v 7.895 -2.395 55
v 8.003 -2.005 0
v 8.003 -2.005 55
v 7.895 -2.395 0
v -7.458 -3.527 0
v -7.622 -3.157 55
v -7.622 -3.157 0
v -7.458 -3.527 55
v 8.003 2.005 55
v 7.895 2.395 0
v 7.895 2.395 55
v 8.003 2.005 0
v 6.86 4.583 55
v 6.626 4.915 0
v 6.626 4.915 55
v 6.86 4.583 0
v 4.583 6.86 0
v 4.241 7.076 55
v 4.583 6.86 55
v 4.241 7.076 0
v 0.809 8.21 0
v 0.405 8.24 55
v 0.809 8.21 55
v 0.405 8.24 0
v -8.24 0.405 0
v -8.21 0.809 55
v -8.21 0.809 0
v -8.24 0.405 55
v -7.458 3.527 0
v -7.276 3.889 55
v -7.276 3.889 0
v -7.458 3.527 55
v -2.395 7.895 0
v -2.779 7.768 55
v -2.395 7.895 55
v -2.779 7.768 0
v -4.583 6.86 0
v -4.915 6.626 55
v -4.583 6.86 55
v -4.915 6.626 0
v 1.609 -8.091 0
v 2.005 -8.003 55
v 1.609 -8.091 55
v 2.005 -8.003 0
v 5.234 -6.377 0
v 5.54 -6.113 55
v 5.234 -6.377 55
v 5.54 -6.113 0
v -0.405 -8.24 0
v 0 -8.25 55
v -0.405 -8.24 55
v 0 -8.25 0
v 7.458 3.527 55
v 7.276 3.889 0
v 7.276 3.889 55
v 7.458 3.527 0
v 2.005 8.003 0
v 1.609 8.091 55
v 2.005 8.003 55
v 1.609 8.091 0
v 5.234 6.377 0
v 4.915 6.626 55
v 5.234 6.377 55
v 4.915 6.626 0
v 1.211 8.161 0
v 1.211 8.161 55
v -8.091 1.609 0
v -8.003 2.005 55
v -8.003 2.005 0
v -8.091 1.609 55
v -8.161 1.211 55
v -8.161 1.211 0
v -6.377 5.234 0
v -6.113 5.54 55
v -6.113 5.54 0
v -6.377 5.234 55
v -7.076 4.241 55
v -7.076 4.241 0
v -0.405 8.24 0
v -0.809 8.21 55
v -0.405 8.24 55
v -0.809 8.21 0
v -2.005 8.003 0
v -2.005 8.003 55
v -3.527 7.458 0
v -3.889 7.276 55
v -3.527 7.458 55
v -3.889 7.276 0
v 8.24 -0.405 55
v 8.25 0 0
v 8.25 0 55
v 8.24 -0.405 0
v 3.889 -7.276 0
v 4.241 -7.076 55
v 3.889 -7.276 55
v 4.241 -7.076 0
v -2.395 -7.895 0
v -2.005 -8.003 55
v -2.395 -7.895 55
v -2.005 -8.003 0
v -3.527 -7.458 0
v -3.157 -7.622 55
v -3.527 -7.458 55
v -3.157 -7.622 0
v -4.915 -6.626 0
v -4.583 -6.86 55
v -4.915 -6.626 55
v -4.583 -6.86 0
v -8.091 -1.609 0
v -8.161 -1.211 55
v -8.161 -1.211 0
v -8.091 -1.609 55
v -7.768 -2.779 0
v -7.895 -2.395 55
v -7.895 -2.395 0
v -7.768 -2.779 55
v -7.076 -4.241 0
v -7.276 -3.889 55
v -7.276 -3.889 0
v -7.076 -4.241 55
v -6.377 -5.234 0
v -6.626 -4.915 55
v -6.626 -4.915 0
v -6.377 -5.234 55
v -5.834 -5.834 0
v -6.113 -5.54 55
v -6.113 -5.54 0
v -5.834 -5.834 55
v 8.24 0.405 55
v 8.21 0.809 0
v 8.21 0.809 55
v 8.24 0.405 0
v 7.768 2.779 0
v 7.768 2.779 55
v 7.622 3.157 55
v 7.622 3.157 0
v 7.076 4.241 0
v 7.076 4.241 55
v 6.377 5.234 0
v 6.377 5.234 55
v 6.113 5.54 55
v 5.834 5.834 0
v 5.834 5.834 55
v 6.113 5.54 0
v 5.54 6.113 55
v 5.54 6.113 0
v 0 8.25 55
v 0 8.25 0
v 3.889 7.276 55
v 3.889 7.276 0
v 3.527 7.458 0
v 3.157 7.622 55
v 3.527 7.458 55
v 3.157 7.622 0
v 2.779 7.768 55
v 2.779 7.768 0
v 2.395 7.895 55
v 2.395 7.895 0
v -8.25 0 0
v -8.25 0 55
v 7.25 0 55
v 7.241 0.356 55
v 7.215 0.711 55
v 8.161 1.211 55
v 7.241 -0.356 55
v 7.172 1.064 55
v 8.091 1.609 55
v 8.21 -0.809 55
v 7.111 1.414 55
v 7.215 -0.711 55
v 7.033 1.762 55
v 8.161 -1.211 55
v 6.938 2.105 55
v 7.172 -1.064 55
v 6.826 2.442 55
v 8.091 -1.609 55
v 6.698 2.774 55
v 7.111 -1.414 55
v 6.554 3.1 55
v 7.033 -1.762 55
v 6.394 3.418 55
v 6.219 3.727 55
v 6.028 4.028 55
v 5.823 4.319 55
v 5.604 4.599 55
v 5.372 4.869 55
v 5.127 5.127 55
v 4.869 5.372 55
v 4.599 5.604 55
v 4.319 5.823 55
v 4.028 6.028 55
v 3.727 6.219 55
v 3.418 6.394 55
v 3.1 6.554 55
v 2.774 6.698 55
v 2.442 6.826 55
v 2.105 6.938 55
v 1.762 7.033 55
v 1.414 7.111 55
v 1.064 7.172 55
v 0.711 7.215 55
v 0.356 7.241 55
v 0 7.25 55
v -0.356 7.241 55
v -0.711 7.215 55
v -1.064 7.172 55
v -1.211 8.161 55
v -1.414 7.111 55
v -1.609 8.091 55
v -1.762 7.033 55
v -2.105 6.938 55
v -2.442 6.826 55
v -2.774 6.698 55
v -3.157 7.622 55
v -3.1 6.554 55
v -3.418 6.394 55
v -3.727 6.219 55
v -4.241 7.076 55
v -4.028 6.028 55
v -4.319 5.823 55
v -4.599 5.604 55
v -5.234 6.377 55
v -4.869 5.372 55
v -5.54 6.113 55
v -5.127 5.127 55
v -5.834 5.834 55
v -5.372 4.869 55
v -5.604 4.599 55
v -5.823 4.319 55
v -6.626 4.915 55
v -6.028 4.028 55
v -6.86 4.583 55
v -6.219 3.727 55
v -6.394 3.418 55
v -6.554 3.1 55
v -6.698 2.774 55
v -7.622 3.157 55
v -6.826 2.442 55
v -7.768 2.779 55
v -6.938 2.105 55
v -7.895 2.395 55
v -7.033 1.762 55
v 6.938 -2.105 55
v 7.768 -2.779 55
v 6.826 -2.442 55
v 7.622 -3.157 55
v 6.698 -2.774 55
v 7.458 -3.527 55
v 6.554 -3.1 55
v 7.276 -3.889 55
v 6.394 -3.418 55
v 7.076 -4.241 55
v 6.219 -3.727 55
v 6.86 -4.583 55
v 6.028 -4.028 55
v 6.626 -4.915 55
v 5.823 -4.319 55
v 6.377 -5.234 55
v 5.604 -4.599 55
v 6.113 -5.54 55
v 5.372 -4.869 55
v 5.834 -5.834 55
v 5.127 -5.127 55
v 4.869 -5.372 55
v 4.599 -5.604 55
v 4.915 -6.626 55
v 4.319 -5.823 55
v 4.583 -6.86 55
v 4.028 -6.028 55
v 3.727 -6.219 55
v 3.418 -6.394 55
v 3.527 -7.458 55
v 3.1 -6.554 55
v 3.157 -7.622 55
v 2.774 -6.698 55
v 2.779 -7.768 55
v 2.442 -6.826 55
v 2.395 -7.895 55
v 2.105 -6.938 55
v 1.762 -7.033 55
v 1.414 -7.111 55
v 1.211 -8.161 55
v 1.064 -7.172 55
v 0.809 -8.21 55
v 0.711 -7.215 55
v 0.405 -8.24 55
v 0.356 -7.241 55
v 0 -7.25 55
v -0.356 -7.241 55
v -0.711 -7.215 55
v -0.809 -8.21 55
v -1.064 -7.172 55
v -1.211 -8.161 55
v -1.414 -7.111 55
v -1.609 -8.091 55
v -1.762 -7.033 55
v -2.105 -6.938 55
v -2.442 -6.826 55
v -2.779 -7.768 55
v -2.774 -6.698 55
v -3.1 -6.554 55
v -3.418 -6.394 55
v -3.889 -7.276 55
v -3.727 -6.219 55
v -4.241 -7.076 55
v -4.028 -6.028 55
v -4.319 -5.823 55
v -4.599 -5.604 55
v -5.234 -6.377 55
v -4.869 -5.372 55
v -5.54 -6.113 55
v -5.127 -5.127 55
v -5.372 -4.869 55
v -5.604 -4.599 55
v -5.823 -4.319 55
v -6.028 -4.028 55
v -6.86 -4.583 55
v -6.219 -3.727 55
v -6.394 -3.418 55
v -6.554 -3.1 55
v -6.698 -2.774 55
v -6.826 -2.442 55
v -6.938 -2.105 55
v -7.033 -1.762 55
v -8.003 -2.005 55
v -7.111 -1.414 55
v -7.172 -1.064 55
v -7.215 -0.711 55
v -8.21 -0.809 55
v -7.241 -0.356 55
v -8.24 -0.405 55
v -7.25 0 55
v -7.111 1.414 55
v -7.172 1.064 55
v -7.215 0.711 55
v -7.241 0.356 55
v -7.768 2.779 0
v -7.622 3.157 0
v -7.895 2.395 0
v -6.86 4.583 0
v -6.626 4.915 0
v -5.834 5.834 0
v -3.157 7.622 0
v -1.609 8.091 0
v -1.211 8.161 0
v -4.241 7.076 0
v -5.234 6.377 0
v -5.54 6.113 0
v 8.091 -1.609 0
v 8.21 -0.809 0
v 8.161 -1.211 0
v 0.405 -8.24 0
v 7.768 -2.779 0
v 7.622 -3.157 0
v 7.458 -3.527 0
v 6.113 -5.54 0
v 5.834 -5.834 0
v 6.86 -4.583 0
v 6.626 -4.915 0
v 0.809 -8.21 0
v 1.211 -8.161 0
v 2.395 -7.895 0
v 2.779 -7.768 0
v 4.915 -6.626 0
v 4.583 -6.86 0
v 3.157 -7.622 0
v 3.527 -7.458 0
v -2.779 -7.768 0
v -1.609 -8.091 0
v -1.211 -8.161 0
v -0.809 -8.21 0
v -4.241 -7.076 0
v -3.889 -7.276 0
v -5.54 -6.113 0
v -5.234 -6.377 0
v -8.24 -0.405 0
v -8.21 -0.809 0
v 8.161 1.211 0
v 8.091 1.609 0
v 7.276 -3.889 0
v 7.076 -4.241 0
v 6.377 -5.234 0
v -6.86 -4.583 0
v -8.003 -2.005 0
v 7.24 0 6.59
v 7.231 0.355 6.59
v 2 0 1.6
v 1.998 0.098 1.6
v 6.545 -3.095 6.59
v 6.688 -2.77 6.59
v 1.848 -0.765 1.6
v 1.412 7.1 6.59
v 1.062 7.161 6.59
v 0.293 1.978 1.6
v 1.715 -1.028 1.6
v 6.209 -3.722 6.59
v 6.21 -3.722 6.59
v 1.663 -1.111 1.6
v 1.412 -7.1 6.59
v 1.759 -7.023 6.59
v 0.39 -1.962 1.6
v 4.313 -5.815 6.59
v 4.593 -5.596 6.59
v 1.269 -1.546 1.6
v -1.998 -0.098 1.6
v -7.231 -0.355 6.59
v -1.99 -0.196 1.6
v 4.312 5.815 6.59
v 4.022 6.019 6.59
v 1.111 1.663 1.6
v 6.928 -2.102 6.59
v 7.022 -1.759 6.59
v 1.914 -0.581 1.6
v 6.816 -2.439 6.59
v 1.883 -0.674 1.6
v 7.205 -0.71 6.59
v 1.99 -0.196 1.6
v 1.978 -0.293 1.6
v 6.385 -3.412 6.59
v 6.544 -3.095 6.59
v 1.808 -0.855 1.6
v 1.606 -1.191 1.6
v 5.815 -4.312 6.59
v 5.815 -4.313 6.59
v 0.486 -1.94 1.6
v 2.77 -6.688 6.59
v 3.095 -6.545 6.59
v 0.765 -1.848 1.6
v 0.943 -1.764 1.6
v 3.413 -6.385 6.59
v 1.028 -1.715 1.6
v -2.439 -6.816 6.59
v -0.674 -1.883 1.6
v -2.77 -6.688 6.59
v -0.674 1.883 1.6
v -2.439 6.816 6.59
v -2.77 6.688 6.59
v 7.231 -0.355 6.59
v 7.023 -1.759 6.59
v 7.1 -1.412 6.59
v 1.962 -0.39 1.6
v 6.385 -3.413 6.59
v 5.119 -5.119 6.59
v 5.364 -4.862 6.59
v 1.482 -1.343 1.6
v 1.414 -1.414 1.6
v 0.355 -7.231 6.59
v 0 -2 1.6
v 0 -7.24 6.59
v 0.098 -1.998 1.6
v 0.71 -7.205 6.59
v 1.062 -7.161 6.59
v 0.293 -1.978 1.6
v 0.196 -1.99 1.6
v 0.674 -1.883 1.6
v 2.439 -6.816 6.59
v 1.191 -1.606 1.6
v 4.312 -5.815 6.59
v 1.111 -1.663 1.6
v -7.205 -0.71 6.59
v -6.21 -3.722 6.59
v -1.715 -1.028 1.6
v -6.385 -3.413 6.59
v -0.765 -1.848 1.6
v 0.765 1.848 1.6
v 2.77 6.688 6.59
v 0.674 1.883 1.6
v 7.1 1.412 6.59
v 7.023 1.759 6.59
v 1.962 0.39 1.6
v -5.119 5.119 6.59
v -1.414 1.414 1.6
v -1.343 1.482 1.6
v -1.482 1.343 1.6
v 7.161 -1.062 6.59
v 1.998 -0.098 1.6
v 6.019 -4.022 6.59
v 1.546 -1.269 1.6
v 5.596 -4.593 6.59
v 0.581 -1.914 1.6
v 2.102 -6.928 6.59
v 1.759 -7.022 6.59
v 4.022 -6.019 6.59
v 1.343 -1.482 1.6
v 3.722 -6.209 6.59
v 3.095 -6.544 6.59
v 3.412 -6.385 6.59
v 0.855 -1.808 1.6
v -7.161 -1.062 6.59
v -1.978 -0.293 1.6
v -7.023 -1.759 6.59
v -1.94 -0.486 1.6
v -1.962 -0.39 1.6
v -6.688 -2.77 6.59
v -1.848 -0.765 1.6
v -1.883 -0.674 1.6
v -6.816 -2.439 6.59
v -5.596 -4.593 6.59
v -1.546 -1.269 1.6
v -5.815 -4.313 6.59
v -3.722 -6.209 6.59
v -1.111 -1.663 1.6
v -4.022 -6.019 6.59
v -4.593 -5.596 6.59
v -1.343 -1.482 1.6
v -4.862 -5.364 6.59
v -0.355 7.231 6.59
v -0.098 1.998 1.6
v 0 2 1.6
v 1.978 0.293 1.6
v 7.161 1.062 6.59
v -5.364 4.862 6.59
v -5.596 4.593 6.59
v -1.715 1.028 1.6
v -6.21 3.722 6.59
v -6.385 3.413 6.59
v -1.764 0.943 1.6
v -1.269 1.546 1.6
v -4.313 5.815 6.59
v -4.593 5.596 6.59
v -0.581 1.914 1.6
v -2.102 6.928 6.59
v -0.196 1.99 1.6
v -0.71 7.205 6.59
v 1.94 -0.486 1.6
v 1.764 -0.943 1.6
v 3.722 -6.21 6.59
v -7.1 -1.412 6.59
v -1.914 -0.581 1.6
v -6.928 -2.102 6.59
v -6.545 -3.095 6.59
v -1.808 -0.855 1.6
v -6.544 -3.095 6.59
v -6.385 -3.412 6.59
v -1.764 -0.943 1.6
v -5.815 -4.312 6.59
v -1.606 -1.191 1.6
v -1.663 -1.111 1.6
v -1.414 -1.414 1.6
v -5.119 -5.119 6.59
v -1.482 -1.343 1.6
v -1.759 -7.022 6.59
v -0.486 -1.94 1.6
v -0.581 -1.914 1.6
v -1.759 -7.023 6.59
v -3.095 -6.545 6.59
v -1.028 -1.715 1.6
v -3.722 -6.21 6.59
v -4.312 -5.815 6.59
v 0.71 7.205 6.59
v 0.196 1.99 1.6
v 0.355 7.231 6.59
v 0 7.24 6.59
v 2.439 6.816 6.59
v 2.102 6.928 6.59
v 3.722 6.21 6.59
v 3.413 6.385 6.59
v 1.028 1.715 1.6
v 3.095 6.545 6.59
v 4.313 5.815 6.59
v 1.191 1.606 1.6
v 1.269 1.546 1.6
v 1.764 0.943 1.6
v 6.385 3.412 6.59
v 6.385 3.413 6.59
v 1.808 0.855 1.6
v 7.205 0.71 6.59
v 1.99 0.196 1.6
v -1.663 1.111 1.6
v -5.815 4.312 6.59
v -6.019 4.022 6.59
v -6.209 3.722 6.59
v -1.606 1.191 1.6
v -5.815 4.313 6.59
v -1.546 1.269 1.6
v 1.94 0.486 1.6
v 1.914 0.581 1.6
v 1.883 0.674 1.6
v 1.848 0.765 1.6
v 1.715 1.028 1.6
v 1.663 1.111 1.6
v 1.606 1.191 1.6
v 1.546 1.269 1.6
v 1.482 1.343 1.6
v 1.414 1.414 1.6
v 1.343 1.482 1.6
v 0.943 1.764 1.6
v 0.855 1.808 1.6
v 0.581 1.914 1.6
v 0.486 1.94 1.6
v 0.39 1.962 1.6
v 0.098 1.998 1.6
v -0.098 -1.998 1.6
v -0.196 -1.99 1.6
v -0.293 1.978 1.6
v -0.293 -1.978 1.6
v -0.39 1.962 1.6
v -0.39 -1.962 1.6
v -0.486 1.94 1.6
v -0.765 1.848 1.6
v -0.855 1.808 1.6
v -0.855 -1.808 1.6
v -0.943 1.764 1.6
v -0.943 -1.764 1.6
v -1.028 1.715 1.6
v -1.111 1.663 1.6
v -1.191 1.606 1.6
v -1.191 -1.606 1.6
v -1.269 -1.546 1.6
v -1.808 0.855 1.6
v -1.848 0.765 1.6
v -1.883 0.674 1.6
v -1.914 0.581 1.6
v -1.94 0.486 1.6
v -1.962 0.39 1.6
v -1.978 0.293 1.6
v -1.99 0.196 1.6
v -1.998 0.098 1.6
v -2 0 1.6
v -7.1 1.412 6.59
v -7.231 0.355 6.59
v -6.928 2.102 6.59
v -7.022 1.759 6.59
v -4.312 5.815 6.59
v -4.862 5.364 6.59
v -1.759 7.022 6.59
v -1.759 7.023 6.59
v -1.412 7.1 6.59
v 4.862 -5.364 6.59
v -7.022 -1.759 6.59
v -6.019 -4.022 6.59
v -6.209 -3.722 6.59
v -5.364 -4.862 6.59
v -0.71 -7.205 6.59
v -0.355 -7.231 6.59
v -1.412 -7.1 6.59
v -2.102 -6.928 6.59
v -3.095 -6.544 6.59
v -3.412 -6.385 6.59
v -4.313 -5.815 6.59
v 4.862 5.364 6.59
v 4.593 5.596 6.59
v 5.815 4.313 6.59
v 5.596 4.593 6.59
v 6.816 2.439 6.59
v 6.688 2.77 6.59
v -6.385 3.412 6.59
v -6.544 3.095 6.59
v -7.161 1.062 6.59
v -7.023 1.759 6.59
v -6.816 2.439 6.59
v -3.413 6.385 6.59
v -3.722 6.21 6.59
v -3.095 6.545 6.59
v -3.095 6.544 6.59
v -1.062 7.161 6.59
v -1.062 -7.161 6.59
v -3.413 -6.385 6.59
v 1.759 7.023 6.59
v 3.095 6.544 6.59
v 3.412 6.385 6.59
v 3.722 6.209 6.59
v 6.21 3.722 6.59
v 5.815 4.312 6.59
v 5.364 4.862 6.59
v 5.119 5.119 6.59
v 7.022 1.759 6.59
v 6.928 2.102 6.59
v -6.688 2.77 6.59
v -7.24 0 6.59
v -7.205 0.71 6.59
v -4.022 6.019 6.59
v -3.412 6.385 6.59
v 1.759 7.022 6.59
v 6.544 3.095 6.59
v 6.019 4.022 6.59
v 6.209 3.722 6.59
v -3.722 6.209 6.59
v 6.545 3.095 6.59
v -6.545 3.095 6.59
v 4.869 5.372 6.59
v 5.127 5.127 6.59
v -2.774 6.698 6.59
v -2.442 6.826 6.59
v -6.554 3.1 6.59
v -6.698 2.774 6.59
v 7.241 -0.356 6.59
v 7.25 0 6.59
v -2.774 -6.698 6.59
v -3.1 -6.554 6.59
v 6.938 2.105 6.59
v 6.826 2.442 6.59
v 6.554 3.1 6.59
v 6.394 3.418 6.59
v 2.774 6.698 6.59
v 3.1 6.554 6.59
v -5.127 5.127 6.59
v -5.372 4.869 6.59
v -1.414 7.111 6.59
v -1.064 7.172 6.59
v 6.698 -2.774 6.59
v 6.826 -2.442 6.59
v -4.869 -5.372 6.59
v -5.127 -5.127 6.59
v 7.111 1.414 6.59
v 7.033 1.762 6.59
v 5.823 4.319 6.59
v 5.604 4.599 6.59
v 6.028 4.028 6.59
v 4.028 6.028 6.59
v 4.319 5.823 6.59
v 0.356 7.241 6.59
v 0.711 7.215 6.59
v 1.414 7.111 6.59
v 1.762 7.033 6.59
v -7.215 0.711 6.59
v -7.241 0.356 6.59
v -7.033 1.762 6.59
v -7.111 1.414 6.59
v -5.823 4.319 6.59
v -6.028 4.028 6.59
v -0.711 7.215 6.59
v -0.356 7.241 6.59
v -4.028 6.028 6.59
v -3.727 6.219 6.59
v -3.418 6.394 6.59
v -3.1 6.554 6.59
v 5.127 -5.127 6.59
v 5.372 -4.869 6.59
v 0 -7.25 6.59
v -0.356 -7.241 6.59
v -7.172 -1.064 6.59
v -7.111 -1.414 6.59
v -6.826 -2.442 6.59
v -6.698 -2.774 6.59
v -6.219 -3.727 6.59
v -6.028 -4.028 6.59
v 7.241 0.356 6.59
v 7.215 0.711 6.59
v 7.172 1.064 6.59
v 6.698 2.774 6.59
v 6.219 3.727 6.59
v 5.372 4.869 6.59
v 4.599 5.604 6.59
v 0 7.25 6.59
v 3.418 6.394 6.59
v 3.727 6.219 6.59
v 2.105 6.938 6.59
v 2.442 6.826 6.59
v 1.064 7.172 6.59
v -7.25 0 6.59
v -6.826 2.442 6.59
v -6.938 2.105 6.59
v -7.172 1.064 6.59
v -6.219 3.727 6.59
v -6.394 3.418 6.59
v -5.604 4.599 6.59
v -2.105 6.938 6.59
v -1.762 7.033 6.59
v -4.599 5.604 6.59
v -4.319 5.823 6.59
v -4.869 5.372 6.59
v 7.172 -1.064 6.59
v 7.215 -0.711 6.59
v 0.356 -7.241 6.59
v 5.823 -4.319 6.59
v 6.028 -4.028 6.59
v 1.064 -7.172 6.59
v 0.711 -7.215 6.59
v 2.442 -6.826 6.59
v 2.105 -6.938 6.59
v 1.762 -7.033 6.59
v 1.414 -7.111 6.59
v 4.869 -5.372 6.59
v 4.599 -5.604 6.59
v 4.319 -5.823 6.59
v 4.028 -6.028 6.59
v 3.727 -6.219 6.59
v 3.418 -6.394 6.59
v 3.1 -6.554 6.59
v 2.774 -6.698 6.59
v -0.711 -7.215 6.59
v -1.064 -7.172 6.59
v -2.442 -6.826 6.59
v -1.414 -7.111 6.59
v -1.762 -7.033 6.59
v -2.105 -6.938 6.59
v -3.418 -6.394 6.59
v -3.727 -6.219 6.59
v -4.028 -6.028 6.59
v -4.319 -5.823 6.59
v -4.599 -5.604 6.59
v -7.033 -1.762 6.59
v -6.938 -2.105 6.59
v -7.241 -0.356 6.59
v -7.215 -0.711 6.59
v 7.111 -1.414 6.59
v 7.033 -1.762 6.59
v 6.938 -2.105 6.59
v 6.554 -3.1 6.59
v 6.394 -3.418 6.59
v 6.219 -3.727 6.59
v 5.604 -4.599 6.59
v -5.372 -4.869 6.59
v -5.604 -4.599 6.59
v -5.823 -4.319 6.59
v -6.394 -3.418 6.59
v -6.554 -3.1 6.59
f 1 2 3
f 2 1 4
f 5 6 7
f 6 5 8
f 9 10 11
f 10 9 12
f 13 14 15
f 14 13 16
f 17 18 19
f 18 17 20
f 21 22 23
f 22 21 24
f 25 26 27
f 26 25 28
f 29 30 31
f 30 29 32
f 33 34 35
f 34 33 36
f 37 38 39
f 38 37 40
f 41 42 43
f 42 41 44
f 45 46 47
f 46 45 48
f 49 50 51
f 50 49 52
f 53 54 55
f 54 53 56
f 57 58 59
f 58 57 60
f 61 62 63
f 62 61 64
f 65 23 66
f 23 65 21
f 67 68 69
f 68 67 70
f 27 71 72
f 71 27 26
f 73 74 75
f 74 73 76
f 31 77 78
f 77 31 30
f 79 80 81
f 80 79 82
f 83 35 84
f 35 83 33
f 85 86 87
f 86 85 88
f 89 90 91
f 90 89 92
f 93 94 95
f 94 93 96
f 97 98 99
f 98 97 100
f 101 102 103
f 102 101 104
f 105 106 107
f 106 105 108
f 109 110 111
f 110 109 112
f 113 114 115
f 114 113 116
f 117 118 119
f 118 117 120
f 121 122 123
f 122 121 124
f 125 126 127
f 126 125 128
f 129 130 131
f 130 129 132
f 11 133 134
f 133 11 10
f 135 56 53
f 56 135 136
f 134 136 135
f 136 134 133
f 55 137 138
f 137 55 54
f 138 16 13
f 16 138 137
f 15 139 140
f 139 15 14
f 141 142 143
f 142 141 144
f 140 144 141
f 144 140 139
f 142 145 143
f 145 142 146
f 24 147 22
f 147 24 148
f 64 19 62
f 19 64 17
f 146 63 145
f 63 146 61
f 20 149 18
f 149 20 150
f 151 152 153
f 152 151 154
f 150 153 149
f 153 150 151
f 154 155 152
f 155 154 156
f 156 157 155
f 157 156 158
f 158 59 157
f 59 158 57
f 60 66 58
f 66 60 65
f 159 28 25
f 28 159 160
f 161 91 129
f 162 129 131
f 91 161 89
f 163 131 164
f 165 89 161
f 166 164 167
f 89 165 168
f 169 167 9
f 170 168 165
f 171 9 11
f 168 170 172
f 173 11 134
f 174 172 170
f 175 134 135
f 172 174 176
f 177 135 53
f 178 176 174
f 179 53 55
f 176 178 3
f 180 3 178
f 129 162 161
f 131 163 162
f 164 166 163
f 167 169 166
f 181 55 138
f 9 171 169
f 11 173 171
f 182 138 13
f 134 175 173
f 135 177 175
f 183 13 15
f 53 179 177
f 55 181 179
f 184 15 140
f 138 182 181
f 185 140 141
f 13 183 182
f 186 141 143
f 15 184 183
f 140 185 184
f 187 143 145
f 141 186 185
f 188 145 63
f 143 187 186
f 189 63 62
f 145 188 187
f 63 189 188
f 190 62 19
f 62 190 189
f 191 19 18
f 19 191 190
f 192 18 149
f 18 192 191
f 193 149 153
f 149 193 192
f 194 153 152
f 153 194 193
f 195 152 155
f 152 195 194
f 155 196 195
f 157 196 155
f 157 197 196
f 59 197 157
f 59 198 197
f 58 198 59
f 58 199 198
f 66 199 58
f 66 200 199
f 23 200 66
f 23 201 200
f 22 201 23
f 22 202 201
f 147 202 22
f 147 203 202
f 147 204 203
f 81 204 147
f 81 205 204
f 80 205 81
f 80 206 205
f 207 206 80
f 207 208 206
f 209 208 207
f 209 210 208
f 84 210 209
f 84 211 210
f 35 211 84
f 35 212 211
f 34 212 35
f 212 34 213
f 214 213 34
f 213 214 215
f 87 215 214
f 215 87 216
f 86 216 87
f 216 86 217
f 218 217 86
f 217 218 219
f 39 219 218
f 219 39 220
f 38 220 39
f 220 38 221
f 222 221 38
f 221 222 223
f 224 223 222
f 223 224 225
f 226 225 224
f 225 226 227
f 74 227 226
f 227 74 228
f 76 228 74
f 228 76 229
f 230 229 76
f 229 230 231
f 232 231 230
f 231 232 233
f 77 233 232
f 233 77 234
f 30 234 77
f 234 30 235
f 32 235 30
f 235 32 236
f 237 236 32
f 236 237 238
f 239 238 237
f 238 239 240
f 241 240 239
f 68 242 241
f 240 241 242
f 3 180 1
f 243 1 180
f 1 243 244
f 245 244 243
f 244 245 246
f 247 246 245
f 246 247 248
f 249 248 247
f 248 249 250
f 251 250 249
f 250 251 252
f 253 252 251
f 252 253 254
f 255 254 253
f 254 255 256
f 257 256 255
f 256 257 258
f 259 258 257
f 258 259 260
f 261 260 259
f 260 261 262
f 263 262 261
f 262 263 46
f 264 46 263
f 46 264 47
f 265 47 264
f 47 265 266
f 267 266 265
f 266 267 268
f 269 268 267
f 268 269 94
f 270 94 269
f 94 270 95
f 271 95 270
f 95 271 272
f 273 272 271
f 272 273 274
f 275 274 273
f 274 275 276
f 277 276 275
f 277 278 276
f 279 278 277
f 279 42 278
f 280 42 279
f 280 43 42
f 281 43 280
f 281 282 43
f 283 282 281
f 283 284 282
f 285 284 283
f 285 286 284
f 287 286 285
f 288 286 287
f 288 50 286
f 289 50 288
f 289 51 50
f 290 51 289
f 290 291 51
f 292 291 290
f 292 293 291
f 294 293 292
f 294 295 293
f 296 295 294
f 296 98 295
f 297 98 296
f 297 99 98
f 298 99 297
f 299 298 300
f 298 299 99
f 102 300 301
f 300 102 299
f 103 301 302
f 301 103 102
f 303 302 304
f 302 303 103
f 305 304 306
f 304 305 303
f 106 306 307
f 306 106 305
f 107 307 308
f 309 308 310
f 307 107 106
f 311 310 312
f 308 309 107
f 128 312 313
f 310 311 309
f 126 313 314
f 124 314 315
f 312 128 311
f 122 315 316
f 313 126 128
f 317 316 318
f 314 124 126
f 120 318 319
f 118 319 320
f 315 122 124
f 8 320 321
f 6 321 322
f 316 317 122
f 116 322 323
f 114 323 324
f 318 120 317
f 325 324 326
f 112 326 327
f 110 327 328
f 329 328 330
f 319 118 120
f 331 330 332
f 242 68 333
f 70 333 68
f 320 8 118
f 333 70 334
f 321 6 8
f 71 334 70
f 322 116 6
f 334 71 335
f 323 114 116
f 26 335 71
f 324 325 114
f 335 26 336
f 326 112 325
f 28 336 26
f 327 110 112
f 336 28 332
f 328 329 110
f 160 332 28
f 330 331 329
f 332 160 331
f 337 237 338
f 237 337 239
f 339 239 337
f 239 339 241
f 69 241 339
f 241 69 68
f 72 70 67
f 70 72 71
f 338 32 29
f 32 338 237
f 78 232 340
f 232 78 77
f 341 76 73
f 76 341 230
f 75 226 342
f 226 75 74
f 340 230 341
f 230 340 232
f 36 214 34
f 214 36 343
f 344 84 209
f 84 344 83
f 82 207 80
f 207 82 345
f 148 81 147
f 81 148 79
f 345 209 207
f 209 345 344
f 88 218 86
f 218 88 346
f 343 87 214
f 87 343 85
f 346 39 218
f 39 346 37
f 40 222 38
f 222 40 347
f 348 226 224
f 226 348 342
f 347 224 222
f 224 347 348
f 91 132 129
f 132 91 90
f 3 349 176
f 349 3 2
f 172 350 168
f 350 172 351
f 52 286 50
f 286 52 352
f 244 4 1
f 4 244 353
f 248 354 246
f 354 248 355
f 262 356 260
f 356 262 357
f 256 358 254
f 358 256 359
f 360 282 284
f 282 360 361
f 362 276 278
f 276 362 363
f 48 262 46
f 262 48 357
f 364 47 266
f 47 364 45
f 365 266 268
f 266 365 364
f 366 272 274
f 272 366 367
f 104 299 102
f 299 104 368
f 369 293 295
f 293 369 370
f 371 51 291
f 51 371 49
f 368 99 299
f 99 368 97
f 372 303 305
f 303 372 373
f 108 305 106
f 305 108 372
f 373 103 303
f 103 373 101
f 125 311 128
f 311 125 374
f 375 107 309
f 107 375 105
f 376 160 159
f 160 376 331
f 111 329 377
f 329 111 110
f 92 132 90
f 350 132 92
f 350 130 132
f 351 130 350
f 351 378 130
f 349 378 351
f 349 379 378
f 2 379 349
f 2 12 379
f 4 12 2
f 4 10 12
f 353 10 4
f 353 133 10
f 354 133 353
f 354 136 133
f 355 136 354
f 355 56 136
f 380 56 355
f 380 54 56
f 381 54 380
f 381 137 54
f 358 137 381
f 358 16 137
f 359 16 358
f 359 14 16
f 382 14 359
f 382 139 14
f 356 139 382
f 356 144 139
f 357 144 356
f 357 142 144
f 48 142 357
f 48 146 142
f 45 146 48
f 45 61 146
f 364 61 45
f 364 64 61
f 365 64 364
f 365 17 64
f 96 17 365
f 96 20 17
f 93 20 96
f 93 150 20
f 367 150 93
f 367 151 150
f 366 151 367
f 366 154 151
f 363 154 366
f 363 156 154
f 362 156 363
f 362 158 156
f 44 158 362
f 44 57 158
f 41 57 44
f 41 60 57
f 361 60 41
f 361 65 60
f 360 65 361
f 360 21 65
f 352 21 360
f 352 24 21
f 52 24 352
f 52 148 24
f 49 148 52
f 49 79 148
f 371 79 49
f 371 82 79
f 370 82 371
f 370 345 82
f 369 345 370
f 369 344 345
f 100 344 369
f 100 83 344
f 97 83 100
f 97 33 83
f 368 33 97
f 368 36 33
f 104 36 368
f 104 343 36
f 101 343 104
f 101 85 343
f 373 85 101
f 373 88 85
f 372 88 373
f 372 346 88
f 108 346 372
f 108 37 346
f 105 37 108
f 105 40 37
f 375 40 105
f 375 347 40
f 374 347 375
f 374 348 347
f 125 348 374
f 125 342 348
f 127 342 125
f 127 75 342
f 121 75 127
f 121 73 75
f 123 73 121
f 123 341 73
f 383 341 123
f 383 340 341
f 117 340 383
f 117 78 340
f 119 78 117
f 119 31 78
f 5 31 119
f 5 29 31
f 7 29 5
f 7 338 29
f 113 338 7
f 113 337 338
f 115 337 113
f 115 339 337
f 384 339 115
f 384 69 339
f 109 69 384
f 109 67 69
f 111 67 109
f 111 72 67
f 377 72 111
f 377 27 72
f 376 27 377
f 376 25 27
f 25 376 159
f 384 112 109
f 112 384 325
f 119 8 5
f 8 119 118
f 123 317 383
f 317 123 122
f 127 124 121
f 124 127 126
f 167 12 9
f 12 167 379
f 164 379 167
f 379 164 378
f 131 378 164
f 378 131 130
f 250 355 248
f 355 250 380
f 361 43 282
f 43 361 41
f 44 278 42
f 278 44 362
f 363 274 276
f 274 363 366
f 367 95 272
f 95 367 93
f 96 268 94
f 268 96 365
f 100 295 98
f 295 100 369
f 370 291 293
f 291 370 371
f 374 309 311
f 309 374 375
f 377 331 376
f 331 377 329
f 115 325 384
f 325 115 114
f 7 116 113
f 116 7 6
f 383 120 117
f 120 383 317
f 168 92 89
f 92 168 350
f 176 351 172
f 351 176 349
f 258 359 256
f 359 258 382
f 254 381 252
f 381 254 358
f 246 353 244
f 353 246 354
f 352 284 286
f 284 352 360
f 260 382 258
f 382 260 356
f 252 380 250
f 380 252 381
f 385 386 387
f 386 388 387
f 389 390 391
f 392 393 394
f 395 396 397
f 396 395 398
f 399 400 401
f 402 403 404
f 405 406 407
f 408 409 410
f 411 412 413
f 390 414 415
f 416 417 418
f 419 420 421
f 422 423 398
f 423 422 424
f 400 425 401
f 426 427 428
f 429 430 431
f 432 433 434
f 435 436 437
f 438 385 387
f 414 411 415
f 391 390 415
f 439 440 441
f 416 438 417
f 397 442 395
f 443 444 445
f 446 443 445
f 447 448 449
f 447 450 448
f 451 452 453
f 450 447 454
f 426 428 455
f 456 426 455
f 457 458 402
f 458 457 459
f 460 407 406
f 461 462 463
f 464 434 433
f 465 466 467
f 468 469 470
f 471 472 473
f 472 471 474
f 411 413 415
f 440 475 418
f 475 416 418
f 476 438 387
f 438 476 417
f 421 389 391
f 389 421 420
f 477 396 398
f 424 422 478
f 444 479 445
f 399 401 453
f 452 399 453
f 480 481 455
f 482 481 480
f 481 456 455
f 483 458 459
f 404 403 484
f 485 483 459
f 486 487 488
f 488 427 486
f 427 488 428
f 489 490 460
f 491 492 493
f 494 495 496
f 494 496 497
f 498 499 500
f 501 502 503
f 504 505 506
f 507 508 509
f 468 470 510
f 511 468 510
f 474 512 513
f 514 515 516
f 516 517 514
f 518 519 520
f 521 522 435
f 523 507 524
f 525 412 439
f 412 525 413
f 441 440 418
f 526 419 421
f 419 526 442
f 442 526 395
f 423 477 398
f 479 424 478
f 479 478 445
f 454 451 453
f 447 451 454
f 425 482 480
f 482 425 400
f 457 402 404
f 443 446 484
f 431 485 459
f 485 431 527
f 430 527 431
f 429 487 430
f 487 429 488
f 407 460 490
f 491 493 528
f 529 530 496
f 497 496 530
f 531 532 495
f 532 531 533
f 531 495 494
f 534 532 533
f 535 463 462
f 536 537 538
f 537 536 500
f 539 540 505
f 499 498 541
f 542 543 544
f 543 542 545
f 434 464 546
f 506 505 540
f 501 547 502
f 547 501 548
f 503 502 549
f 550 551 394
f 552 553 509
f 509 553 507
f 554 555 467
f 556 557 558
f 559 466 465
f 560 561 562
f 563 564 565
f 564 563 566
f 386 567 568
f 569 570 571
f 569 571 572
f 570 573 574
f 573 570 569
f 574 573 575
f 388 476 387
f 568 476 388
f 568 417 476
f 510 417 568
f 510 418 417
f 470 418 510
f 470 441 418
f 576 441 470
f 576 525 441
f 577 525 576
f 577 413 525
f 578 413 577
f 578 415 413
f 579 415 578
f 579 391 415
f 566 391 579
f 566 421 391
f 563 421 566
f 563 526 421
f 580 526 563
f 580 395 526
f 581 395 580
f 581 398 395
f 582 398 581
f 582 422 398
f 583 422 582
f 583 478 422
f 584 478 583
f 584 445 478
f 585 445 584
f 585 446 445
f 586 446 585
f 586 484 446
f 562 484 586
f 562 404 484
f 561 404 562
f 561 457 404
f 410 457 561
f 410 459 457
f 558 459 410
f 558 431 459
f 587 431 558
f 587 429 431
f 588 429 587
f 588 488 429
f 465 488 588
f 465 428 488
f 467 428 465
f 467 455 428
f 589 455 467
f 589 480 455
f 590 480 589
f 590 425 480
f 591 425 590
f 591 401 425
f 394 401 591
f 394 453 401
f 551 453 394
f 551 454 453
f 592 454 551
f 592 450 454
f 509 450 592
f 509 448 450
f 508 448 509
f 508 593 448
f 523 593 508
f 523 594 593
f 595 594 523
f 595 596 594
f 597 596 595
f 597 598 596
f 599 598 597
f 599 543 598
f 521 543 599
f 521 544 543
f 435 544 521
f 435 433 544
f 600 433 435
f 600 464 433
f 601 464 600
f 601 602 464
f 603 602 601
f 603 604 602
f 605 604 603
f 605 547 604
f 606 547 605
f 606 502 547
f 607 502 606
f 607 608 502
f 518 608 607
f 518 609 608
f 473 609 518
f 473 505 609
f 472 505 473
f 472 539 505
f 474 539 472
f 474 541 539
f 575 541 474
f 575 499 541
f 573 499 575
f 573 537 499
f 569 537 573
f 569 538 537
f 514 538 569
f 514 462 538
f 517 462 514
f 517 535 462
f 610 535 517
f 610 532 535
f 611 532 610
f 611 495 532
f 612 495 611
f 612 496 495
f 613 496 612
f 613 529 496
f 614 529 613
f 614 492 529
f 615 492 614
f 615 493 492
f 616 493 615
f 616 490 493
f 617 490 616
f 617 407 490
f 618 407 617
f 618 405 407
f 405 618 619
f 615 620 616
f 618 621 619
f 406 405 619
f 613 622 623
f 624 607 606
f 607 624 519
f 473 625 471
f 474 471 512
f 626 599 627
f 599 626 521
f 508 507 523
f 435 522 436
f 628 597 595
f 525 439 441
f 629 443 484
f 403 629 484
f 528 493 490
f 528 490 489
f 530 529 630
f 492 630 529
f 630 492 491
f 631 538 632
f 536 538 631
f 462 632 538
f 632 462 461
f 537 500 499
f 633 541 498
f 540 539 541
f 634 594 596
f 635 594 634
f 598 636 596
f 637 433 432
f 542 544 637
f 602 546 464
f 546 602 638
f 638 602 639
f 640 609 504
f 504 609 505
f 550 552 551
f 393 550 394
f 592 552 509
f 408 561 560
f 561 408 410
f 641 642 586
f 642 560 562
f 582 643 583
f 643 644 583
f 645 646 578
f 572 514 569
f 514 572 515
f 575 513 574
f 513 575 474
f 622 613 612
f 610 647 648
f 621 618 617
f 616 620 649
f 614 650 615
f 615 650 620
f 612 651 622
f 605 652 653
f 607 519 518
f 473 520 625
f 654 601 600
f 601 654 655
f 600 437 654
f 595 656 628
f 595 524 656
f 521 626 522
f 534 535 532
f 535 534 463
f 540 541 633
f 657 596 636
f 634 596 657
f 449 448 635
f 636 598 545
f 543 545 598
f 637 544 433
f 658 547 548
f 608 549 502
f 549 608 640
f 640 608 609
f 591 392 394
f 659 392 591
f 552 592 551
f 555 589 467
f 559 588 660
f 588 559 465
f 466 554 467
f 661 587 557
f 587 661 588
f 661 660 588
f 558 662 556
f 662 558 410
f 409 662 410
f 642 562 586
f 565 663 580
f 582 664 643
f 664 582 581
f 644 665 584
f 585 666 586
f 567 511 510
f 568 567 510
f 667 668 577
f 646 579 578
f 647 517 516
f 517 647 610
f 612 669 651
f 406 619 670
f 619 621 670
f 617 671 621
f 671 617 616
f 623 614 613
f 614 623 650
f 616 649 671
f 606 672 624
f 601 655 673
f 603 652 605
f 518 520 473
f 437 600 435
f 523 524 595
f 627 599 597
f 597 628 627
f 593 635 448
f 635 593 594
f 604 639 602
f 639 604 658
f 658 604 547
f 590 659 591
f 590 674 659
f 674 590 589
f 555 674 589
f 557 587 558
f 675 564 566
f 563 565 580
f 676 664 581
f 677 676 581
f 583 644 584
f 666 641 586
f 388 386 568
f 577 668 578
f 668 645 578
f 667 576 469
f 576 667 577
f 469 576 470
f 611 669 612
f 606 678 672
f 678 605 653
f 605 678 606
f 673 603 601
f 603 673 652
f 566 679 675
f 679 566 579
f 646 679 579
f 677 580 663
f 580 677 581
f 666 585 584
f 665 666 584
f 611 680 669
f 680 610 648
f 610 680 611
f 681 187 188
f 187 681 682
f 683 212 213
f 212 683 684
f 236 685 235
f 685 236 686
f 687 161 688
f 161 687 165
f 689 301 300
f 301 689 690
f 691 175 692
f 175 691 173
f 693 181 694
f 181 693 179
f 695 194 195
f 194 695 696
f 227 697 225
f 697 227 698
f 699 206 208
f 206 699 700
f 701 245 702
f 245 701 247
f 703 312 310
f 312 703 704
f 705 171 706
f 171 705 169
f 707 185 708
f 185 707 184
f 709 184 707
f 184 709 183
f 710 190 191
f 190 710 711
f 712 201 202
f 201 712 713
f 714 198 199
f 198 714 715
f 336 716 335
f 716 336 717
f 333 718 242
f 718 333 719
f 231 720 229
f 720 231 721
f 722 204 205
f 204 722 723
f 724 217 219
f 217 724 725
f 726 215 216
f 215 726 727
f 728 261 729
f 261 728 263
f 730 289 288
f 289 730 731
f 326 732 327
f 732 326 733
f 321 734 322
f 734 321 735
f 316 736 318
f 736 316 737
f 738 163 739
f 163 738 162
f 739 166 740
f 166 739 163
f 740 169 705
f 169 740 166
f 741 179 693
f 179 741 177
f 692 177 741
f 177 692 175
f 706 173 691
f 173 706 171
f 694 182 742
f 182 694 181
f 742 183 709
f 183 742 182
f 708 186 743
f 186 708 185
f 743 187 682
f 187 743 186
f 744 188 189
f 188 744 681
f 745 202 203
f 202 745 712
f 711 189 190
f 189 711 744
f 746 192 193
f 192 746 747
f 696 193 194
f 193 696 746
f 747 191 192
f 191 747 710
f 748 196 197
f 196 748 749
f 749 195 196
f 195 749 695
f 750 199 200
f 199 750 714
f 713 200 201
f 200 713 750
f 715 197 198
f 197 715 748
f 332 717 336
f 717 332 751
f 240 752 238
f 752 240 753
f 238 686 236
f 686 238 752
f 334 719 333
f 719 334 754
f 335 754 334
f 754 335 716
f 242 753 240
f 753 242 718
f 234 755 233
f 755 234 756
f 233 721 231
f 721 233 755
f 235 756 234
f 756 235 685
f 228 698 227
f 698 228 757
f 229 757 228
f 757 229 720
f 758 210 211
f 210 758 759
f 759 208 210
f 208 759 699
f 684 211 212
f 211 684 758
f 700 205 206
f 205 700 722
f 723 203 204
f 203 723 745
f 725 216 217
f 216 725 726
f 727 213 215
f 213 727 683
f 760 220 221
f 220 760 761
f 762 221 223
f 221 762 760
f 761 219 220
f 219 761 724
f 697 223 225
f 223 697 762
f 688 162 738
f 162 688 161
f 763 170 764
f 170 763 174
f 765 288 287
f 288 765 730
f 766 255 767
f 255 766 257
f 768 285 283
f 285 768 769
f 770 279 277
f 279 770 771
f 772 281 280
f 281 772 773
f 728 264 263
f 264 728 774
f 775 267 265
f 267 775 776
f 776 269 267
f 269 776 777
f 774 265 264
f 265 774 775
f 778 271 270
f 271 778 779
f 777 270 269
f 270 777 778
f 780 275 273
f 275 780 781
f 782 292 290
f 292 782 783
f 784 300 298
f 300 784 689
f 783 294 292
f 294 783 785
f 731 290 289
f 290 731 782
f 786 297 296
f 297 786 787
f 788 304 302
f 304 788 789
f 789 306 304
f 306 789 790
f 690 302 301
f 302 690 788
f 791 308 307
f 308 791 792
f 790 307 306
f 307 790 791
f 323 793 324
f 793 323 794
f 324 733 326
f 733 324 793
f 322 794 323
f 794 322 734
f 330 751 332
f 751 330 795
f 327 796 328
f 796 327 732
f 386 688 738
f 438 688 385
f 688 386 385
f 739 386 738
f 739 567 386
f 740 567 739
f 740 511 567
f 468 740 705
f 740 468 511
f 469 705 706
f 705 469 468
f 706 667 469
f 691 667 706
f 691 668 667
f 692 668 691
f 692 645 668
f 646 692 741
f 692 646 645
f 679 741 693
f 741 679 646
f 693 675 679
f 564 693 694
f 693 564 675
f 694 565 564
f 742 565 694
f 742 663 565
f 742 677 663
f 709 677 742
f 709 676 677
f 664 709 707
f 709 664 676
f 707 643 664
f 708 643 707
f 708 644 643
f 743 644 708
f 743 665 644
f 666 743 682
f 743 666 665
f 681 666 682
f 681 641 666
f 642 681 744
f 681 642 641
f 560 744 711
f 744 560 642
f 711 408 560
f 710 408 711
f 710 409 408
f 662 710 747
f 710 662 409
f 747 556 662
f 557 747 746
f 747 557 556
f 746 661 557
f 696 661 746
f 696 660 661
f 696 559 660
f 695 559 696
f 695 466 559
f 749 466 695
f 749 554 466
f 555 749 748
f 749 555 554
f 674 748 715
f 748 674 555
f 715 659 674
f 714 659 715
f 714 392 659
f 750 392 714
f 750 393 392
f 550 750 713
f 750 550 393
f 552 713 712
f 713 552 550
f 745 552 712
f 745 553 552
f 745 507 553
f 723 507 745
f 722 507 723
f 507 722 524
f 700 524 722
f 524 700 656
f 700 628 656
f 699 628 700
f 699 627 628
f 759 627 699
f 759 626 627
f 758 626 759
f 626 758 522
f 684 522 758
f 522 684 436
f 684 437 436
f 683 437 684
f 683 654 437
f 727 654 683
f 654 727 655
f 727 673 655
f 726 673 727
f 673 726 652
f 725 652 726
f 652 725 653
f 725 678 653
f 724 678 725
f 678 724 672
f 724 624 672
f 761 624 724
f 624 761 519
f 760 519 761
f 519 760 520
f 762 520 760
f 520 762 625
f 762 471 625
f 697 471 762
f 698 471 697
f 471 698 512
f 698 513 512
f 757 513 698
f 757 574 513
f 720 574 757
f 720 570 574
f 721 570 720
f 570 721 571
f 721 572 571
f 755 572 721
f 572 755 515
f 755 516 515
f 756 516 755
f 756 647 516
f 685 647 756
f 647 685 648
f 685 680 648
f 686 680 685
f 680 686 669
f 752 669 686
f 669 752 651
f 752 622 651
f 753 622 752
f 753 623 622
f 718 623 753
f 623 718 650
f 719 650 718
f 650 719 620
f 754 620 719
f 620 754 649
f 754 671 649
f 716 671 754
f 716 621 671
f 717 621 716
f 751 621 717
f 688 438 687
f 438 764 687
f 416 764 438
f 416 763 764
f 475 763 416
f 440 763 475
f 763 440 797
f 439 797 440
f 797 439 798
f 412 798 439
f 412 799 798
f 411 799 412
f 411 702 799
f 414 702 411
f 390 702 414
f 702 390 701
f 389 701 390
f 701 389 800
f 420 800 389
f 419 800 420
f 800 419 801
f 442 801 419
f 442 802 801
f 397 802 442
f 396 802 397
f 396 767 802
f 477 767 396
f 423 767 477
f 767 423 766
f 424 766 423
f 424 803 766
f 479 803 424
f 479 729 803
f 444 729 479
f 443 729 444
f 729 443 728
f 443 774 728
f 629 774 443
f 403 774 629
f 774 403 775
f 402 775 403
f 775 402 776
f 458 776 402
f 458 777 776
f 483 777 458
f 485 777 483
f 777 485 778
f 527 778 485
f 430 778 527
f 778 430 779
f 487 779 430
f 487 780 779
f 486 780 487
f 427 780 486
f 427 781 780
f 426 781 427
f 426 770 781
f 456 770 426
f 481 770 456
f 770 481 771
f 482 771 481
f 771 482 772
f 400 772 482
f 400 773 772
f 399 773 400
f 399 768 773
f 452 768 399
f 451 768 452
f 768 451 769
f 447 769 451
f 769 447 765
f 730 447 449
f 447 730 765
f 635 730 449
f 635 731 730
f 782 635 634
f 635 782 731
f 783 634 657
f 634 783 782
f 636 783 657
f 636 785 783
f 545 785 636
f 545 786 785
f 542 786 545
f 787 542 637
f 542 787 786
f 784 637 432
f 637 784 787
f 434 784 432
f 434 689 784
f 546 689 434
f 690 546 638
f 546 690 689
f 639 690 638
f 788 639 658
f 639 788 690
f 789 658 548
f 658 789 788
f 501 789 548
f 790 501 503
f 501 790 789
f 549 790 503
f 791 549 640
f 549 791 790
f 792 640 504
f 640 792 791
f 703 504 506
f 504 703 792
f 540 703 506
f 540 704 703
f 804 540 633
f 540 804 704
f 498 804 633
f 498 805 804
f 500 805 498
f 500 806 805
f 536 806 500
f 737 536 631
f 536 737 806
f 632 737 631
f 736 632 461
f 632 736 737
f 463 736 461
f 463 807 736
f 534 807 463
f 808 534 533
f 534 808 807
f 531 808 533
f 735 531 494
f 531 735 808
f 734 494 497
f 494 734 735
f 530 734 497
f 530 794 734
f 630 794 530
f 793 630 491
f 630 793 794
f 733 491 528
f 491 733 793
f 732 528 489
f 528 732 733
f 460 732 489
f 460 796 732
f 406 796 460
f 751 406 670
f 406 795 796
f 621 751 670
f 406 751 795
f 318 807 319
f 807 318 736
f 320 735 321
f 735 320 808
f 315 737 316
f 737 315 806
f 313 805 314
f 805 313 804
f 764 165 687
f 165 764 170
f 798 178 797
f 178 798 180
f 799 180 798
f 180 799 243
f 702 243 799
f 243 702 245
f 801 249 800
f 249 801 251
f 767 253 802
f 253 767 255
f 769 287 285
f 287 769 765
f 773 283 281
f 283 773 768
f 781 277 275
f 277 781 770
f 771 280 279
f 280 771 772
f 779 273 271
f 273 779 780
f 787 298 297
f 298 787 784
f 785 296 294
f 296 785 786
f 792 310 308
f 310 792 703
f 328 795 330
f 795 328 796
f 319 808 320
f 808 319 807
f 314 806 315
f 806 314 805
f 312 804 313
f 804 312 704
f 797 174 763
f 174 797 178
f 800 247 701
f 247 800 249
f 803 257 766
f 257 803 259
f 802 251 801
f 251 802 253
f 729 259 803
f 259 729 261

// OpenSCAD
/**
 * Ink sample vial
 *
 * This is a small sample vial for inks, similar to the ones
 * many companies like Goulet Pens ship their ink samples in.
 * It holds ~5ml of ink and is only intended for temporary use
 * as it has no cap.
 *
 * Copyright 2018, Hendrik Busch
 * https://github.com/hmbusch
 *
 * Licensed under Creative Commons Attribution Share Alike 4.0.
 * https://creativecommons.org/licenses/by-sa/4.0/
 */
 
$fn = 128;

difference() {
    cylinder(d=16.5, h = 55);
    translate([0, 0, 1.6]) cylinder(d1 = 4, d2=14.5, h = 5);
    translate([0, 0, 6.59]) cylinder(d = 14.5, h = 50);    
}
